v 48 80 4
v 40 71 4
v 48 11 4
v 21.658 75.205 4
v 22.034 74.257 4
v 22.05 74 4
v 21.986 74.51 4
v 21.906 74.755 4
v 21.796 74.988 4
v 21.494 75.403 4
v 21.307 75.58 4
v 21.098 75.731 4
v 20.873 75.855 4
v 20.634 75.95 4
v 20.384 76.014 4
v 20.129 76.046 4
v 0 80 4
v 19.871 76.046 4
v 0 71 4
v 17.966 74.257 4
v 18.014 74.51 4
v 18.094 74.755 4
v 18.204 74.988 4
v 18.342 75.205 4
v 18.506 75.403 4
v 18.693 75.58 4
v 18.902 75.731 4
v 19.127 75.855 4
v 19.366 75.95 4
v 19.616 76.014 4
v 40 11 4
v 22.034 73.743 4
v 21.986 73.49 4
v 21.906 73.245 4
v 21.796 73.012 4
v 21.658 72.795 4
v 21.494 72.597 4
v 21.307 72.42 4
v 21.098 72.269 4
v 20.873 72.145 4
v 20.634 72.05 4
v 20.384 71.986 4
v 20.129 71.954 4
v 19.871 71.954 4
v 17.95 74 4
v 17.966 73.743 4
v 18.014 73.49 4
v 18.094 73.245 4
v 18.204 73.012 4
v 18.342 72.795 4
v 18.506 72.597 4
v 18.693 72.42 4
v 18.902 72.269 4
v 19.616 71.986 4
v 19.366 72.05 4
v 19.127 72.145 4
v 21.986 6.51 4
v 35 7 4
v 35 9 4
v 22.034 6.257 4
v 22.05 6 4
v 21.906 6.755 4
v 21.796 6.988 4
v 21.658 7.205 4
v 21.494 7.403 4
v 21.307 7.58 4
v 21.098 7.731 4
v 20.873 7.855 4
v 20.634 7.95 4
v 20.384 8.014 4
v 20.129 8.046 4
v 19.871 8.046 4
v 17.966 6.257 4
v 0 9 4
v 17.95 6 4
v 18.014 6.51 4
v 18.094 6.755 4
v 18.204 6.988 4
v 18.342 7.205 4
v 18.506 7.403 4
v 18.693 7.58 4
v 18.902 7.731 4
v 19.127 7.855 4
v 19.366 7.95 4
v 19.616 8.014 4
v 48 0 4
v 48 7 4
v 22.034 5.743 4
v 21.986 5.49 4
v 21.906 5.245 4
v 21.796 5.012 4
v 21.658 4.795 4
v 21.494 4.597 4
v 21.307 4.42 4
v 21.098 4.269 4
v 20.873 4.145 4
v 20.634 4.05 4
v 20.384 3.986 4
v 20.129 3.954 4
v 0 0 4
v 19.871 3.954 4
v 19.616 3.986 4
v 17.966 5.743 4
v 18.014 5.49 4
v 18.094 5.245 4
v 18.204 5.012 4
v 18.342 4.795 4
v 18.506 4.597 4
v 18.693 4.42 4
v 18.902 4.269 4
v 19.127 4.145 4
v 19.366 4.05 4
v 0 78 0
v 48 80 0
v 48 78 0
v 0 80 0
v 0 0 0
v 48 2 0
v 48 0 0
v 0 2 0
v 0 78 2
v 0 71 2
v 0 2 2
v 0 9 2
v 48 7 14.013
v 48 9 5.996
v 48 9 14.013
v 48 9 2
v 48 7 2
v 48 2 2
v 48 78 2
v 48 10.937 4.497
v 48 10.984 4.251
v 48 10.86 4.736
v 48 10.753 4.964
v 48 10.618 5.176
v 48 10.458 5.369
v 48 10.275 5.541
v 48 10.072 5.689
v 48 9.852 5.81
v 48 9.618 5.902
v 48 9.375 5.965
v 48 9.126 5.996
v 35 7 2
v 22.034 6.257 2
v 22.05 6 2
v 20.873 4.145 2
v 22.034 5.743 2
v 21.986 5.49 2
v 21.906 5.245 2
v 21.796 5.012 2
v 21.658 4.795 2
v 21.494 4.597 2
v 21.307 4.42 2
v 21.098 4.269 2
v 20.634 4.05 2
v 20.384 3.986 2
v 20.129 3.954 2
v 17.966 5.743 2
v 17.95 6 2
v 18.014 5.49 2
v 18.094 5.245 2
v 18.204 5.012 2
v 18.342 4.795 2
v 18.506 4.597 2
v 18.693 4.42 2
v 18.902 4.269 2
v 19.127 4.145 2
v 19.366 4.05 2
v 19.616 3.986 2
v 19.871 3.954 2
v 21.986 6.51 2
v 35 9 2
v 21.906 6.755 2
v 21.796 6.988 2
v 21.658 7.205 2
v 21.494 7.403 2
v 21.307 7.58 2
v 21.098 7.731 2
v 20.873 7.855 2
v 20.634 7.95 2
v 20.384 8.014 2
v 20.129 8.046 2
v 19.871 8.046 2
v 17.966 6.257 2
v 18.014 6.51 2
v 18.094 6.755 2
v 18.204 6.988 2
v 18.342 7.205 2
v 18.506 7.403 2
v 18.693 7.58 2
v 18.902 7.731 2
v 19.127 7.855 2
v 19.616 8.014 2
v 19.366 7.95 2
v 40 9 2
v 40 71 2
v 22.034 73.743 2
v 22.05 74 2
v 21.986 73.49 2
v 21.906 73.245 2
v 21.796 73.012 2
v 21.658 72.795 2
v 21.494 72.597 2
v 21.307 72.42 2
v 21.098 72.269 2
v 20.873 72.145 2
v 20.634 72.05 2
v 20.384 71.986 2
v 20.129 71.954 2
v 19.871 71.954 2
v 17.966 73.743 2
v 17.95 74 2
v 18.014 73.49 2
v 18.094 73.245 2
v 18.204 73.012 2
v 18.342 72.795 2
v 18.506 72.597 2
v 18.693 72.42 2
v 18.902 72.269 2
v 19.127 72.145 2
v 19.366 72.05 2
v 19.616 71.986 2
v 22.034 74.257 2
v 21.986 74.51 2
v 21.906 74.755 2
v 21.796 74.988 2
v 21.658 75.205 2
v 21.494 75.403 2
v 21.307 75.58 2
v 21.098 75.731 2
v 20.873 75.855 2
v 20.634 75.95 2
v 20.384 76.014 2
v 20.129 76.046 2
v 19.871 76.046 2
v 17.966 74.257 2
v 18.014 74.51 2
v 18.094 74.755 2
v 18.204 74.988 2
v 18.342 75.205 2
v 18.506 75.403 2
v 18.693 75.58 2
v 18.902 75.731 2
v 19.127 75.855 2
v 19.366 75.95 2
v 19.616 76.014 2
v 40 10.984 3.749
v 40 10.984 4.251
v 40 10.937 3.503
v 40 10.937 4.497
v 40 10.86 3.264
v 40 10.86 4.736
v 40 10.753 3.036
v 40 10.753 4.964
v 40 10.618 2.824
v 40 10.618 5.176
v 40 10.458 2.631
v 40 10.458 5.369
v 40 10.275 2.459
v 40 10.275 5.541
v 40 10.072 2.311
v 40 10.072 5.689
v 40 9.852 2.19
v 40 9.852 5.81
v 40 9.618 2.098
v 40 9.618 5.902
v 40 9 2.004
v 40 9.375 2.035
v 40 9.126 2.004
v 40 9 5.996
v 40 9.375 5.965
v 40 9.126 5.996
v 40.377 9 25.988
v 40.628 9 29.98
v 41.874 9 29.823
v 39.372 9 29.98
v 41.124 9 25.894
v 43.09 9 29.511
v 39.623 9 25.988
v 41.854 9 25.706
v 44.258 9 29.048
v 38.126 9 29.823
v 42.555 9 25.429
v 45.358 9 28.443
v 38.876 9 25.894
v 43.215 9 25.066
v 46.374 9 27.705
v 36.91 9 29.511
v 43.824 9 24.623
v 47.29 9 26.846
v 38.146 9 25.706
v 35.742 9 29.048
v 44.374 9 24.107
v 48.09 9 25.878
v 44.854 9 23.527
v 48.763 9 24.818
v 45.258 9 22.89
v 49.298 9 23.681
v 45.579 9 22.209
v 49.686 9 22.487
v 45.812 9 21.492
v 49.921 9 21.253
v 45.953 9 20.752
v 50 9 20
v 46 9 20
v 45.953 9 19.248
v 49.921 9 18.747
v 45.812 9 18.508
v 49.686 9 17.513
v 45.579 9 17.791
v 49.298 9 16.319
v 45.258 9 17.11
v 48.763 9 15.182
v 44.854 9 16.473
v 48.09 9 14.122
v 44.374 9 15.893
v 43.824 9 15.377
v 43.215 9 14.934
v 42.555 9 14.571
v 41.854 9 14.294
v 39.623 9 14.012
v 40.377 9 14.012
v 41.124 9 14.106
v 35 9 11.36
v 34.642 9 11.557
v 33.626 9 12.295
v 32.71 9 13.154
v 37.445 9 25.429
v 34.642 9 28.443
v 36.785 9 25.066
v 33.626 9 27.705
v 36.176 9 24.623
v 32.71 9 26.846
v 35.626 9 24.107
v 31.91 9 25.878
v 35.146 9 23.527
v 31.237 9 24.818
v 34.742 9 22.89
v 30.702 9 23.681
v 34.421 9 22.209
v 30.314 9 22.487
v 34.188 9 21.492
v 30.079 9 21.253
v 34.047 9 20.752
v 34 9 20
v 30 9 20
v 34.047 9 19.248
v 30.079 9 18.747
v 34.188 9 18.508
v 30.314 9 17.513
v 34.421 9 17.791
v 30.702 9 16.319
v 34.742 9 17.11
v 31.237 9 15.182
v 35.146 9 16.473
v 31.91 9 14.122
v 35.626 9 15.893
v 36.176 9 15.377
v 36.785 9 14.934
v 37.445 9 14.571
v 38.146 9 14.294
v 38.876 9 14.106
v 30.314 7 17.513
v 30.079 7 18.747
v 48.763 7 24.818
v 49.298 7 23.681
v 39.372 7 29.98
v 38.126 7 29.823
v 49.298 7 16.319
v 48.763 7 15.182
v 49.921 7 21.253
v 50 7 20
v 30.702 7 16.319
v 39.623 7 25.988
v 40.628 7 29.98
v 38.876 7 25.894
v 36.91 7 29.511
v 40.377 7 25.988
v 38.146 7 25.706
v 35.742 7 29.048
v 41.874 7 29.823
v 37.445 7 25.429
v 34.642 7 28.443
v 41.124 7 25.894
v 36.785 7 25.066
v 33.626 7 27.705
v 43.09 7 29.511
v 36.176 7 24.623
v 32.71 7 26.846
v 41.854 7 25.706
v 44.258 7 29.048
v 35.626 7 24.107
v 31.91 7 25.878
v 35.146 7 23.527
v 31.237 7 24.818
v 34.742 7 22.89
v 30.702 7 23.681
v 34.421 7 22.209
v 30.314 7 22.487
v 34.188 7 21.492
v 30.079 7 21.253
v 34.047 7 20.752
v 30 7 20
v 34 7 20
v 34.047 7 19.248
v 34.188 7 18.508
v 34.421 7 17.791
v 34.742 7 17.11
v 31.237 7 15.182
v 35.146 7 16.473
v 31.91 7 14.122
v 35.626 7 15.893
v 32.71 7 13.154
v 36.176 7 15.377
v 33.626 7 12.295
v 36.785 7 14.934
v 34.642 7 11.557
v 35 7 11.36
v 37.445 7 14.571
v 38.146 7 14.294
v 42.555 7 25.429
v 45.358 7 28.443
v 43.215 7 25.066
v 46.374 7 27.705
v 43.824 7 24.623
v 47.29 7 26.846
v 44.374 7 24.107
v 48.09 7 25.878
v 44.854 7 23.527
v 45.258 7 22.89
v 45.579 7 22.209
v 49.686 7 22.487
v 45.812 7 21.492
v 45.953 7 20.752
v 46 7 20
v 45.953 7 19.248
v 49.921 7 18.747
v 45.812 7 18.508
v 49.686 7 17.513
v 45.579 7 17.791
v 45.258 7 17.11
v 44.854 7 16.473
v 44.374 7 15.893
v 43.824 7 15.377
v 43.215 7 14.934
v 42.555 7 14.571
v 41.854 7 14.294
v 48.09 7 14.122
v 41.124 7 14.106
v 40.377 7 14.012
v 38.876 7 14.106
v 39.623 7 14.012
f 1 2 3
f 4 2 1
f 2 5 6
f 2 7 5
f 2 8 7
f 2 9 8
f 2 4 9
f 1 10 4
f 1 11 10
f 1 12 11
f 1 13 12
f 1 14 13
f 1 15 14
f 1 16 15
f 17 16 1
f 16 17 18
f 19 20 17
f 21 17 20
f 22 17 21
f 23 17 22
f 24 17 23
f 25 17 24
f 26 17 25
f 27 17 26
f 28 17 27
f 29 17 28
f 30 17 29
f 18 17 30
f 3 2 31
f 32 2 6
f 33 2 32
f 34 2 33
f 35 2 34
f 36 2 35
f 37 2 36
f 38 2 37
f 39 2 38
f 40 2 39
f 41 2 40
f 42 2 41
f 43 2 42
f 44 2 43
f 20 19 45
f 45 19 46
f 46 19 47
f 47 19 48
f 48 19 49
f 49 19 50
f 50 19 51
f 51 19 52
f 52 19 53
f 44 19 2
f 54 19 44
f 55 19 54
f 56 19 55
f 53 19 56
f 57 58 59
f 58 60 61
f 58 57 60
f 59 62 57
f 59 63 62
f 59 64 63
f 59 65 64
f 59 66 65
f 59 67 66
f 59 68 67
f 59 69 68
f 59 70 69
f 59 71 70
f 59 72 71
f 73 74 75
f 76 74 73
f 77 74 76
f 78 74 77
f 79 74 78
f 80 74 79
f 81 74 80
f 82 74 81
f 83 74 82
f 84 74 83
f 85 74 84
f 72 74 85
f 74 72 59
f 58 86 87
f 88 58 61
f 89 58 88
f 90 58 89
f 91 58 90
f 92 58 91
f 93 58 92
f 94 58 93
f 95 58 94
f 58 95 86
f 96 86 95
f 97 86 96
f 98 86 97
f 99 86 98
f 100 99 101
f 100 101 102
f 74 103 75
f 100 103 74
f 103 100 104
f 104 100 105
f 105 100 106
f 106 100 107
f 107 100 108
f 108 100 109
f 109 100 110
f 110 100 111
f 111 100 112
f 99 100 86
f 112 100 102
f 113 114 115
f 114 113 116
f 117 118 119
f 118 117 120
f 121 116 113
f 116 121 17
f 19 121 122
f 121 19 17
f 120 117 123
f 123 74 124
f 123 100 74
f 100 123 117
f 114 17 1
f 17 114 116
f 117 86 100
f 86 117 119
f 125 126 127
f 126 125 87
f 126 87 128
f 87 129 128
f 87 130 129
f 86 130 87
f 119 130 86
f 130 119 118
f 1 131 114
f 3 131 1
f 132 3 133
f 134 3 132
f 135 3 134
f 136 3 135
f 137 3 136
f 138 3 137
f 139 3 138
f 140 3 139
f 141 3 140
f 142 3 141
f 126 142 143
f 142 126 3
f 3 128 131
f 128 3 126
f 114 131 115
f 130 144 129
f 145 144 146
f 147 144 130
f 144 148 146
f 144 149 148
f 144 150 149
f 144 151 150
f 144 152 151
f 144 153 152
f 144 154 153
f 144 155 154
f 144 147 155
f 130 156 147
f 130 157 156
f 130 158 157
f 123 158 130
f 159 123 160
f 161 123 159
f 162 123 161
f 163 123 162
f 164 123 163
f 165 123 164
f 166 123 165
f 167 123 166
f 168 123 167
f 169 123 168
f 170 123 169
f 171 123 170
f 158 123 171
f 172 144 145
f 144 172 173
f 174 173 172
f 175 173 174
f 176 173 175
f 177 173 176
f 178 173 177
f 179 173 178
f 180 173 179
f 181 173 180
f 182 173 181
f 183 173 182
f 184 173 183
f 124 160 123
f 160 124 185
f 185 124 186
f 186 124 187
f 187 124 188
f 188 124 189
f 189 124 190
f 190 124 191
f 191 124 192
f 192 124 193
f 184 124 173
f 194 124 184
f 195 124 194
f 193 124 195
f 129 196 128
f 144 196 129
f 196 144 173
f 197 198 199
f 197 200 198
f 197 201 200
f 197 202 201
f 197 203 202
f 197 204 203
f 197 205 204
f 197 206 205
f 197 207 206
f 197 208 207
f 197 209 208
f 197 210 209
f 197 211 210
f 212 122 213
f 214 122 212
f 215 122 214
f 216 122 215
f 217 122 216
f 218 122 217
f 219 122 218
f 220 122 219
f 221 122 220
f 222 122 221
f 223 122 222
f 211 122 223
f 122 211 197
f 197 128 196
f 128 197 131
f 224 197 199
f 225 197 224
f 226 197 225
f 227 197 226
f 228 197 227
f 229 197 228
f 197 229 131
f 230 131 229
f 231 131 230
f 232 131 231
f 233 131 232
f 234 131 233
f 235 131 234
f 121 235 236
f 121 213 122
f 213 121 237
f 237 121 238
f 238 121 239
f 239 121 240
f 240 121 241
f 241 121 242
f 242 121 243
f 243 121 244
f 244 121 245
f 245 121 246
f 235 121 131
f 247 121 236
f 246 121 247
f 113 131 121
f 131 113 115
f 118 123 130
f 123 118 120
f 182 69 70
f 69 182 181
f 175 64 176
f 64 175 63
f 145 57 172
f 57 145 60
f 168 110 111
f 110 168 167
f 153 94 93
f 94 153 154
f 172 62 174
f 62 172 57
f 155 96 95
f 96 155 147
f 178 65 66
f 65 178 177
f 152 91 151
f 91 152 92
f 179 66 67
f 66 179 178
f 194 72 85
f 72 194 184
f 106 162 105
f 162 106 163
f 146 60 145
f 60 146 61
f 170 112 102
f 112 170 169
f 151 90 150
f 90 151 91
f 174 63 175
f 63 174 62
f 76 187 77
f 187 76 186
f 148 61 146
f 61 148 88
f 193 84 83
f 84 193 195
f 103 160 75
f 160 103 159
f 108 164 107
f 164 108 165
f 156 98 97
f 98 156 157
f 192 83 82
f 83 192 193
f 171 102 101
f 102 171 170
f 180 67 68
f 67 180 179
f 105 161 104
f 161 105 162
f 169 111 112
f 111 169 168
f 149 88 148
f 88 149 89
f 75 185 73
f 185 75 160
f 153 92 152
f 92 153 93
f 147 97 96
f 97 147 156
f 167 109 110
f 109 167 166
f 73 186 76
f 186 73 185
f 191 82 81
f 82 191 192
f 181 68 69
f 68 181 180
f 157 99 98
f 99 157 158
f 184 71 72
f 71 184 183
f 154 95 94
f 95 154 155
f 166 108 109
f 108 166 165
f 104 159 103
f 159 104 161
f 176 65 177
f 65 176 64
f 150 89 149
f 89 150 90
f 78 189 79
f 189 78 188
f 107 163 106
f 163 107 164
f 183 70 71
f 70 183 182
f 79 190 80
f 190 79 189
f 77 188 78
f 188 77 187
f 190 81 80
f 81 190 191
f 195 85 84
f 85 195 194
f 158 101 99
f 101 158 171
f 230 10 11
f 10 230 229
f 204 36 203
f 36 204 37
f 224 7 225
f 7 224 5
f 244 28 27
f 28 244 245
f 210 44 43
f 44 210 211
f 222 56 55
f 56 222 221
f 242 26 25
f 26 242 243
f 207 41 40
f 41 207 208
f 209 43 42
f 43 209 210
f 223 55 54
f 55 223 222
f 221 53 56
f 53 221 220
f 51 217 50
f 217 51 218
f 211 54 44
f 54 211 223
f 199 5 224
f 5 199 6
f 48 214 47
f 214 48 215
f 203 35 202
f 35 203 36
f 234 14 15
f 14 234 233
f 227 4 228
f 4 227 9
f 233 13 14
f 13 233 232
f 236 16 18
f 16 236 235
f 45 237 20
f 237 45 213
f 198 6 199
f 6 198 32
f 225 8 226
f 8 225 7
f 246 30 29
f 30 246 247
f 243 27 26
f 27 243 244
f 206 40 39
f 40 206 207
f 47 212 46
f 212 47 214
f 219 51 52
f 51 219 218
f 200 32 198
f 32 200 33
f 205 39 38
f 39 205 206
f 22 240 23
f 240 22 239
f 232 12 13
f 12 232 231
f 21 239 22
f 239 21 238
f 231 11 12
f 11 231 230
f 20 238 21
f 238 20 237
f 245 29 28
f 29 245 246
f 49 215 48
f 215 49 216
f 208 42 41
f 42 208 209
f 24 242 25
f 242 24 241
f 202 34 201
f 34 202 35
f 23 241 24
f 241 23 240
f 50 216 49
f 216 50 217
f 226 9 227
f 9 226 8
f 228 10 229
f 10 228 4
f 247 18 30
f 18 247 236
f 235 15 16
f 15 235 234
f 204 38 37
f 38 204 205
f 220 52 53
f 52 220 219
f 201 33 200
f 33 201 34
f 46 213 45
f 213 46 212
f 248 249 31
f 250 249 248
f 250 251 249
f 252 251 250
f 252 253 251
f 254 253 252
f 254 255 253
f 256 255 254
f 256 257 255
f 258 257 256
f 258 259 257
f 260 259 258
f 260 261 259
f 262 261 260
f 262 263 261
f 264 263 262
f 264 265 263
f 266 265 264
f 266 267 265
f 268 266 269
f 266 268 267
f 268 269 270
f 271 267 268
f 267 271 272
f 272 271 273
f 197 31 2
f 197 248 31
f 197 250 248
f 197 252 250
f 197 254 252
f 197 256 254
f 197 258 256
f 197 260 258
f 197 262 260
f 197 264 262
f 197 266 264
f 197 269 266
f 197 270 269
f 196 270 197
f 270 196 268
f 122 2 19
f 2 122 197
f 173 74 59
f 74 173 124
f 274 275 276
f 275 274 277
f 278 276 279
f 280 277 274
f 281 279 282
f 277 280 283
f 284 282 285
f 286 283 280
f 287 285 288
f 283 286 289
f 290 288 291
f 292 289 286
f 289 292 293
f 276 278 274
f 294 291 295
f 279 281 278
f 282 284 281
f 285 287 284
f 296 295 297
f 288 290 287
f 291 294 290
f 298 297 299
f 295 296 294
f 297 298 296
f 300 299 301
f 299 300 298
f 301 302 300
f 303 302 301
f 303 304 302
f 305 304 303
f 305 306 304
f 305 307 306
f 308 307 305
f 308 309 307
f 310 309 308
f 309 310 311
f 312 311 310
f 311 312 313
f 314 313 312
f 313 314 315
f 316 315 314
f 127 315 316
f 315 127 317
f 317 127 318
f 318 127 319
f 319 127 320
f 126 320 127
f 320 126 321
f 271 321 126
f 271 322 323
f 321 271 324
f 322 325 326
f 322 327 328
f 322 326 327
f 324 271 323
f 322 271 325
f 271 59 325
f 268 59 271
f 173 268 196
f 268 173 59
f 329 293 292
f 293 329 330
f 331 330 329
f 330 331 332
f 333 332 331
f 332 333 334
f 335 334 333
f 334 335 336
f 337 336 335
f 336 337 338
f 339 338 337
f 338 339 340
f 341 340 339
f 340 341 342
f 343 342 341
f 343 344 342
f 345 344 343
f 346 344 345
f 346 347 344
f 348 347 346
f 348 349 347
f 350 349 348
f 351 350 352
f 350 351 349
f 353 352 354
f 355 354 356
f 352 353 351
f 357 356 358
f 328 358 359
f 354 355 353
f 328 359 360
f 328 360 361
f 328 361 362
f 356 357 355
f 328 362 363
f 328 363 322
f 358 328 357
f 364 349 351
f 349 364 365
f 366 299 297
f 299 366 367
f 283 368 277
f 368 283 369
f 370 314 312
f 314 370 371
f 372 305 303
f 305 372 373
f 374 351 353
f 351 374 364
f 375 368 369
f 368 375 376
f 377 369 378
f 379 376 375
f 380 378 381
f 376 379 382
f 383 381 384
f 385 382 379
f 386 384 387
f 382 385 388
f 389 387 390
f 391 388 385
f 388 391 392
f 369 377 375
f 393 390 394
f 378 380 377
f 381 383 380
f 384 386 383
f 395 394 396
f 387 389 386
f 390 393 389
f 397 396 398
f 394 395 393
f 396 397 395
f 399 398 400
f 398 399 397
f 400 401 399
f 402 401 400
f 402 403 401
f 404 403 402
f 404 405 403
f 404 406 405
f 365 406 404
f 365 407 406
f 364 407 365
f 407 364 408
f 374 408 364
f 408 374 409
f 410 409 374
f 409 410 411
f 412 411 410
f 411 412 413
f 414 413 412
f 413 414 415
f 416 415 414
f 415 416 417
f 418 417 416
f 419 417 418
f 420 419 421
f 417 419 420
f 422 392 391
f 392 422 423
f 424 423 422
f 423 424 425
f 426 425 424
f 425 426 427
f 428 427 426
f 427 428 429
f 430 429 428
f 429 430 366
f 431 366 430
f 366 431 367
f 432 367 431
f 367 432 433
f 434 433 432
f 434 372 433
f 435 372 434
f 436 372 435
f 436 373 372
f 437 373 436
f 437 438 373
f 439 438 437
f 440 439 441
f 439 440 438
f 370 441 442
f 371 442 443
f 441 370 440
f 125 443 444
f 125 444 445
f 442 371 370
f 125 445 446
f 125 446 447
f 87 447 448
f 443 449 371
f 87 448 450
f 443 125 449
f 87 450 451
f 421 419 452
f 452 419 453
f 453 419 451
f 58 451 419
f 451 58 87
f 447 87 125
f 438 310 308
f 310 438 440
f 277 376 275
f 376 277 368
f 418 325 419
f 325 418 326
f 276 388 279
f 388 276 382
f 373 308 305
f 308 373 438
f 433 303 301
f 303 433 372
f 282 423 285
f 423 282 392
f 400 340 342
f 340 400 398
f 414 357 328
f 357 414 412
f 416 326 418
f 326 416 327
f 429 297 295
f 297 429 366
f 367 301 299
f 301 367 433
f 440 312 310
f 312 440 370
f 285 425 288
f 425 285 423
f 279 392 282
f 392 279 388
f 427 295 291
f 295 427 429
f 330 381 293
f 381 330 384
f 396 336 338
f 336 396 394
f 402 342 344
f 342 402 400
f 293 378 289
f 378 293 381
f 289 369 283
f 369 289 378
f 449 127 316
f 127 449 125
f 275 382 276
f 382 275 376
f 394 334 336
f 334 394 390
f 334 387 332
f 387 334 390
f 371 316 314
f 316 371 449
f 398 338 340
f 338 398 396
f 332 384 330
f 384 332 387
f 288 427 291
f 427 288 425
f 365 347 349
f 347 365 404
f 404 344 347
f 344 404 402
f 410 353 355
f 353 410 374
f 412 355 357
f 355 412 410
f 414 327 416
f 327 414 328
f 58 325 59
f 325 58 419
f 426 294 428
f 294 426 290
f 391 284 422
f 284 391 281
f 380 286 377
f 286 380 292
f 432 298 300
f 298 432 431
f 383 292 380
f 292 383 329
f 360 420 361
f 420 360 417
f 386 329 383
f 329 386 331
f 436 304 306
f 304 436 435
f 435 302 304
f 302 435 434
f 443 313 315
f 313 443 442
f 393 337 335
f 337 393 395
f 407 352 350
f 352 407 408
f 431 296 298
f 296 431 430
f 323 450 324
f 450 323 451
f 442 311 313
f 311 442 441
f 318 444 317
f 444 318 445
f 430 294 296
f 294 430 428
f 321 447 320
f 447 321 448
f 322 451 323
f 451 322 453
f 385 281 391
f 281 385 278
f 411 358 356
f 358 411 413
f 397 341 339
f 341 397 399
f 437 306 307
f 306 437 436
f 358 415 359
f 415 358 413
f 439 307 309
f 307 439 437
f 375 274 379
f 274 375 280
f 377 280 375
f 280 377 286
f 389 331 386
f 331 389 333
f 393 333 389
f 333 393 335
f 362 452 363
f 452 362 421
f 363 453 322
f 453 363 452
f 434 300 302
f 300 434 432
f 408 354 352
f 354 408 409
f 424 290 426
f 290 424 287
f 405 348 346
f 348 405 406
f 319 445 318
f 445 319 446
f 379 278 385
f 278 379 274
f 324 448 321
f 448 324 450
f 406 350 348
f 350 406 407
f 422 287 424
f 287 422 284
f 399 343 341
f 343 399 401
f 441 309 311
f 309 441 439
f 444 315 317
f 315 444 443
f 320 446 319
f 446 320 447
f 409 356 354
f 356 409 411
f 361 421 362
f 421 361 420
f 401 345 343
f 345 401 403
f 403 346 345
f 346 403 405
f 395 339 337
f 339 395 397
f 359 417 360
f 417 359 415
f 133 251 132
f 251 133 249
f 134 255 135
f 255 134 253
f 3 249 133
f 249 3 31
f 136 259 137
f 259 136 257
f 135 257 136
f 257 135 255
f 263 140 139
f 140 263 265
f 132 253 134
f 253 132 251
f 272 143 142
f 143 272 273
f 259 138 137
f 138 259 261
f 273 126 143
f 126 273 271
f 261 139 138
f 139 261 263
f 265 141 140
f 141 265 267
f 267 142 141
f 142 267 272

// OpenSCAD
$fn=50;

// carrage mount holes
carriage_y=68;

// Titan areo supplied bracket
areo_y=62;
areo_z=40;

// bracket
th=2;
wd=areo_z;
side=8;
carriage_rad=4;
m4clr=4.1/2;
mt_boss=10;
mt_hole=6;
mt_y_off=20;

union() {
    // Base plate
    difference() {
        union() {
            cube([wd,carriage_y+2*(carriage_rad+th),th*2]);
            // side
            translate([wd,0,0]) cube([side,carriage_y+2*(carriage_rad+th),th*2]);
        }
        translate([0,th,0]) cube([wd+side,carriage_y+2*(carriage_rad),th]);  
        translate([areo_z/2,carriage_rad+th,th]) cylinder(th,r=m4clr);
        translate([areo_z/2,carriage_y+2*(carriage_rad+th)-(carriage_rad+th),th]) 
            cylinder(th,r=m4clr);
        translate([0,((carriage_y+2*(carriage_rad+th))-areo_y)/2,0]) cube([wd,areo_y,th*2]);    
    };
    // Mount hole
    translate([wd,((carriage_y+2*(carriage_rad+th))-areo_y)/2,mt_y_off]) 
        rotate([90,0,0]) {
        difference() {
            union() {
                cylinder(th,r=mt_boss);
                translate([-mt_boss/2,-mt_y_off+th,0]) cube([mt_boss+side/2-1,mt_y_off,th]);
            }
            cylinder(th,r=mt_hole);
        }
        #translate([0,-mt_y_off+2*th,0]) rotate([0,90,0]) cylinder(mt_boss/2+side/2-1,r=th);
    }
}
